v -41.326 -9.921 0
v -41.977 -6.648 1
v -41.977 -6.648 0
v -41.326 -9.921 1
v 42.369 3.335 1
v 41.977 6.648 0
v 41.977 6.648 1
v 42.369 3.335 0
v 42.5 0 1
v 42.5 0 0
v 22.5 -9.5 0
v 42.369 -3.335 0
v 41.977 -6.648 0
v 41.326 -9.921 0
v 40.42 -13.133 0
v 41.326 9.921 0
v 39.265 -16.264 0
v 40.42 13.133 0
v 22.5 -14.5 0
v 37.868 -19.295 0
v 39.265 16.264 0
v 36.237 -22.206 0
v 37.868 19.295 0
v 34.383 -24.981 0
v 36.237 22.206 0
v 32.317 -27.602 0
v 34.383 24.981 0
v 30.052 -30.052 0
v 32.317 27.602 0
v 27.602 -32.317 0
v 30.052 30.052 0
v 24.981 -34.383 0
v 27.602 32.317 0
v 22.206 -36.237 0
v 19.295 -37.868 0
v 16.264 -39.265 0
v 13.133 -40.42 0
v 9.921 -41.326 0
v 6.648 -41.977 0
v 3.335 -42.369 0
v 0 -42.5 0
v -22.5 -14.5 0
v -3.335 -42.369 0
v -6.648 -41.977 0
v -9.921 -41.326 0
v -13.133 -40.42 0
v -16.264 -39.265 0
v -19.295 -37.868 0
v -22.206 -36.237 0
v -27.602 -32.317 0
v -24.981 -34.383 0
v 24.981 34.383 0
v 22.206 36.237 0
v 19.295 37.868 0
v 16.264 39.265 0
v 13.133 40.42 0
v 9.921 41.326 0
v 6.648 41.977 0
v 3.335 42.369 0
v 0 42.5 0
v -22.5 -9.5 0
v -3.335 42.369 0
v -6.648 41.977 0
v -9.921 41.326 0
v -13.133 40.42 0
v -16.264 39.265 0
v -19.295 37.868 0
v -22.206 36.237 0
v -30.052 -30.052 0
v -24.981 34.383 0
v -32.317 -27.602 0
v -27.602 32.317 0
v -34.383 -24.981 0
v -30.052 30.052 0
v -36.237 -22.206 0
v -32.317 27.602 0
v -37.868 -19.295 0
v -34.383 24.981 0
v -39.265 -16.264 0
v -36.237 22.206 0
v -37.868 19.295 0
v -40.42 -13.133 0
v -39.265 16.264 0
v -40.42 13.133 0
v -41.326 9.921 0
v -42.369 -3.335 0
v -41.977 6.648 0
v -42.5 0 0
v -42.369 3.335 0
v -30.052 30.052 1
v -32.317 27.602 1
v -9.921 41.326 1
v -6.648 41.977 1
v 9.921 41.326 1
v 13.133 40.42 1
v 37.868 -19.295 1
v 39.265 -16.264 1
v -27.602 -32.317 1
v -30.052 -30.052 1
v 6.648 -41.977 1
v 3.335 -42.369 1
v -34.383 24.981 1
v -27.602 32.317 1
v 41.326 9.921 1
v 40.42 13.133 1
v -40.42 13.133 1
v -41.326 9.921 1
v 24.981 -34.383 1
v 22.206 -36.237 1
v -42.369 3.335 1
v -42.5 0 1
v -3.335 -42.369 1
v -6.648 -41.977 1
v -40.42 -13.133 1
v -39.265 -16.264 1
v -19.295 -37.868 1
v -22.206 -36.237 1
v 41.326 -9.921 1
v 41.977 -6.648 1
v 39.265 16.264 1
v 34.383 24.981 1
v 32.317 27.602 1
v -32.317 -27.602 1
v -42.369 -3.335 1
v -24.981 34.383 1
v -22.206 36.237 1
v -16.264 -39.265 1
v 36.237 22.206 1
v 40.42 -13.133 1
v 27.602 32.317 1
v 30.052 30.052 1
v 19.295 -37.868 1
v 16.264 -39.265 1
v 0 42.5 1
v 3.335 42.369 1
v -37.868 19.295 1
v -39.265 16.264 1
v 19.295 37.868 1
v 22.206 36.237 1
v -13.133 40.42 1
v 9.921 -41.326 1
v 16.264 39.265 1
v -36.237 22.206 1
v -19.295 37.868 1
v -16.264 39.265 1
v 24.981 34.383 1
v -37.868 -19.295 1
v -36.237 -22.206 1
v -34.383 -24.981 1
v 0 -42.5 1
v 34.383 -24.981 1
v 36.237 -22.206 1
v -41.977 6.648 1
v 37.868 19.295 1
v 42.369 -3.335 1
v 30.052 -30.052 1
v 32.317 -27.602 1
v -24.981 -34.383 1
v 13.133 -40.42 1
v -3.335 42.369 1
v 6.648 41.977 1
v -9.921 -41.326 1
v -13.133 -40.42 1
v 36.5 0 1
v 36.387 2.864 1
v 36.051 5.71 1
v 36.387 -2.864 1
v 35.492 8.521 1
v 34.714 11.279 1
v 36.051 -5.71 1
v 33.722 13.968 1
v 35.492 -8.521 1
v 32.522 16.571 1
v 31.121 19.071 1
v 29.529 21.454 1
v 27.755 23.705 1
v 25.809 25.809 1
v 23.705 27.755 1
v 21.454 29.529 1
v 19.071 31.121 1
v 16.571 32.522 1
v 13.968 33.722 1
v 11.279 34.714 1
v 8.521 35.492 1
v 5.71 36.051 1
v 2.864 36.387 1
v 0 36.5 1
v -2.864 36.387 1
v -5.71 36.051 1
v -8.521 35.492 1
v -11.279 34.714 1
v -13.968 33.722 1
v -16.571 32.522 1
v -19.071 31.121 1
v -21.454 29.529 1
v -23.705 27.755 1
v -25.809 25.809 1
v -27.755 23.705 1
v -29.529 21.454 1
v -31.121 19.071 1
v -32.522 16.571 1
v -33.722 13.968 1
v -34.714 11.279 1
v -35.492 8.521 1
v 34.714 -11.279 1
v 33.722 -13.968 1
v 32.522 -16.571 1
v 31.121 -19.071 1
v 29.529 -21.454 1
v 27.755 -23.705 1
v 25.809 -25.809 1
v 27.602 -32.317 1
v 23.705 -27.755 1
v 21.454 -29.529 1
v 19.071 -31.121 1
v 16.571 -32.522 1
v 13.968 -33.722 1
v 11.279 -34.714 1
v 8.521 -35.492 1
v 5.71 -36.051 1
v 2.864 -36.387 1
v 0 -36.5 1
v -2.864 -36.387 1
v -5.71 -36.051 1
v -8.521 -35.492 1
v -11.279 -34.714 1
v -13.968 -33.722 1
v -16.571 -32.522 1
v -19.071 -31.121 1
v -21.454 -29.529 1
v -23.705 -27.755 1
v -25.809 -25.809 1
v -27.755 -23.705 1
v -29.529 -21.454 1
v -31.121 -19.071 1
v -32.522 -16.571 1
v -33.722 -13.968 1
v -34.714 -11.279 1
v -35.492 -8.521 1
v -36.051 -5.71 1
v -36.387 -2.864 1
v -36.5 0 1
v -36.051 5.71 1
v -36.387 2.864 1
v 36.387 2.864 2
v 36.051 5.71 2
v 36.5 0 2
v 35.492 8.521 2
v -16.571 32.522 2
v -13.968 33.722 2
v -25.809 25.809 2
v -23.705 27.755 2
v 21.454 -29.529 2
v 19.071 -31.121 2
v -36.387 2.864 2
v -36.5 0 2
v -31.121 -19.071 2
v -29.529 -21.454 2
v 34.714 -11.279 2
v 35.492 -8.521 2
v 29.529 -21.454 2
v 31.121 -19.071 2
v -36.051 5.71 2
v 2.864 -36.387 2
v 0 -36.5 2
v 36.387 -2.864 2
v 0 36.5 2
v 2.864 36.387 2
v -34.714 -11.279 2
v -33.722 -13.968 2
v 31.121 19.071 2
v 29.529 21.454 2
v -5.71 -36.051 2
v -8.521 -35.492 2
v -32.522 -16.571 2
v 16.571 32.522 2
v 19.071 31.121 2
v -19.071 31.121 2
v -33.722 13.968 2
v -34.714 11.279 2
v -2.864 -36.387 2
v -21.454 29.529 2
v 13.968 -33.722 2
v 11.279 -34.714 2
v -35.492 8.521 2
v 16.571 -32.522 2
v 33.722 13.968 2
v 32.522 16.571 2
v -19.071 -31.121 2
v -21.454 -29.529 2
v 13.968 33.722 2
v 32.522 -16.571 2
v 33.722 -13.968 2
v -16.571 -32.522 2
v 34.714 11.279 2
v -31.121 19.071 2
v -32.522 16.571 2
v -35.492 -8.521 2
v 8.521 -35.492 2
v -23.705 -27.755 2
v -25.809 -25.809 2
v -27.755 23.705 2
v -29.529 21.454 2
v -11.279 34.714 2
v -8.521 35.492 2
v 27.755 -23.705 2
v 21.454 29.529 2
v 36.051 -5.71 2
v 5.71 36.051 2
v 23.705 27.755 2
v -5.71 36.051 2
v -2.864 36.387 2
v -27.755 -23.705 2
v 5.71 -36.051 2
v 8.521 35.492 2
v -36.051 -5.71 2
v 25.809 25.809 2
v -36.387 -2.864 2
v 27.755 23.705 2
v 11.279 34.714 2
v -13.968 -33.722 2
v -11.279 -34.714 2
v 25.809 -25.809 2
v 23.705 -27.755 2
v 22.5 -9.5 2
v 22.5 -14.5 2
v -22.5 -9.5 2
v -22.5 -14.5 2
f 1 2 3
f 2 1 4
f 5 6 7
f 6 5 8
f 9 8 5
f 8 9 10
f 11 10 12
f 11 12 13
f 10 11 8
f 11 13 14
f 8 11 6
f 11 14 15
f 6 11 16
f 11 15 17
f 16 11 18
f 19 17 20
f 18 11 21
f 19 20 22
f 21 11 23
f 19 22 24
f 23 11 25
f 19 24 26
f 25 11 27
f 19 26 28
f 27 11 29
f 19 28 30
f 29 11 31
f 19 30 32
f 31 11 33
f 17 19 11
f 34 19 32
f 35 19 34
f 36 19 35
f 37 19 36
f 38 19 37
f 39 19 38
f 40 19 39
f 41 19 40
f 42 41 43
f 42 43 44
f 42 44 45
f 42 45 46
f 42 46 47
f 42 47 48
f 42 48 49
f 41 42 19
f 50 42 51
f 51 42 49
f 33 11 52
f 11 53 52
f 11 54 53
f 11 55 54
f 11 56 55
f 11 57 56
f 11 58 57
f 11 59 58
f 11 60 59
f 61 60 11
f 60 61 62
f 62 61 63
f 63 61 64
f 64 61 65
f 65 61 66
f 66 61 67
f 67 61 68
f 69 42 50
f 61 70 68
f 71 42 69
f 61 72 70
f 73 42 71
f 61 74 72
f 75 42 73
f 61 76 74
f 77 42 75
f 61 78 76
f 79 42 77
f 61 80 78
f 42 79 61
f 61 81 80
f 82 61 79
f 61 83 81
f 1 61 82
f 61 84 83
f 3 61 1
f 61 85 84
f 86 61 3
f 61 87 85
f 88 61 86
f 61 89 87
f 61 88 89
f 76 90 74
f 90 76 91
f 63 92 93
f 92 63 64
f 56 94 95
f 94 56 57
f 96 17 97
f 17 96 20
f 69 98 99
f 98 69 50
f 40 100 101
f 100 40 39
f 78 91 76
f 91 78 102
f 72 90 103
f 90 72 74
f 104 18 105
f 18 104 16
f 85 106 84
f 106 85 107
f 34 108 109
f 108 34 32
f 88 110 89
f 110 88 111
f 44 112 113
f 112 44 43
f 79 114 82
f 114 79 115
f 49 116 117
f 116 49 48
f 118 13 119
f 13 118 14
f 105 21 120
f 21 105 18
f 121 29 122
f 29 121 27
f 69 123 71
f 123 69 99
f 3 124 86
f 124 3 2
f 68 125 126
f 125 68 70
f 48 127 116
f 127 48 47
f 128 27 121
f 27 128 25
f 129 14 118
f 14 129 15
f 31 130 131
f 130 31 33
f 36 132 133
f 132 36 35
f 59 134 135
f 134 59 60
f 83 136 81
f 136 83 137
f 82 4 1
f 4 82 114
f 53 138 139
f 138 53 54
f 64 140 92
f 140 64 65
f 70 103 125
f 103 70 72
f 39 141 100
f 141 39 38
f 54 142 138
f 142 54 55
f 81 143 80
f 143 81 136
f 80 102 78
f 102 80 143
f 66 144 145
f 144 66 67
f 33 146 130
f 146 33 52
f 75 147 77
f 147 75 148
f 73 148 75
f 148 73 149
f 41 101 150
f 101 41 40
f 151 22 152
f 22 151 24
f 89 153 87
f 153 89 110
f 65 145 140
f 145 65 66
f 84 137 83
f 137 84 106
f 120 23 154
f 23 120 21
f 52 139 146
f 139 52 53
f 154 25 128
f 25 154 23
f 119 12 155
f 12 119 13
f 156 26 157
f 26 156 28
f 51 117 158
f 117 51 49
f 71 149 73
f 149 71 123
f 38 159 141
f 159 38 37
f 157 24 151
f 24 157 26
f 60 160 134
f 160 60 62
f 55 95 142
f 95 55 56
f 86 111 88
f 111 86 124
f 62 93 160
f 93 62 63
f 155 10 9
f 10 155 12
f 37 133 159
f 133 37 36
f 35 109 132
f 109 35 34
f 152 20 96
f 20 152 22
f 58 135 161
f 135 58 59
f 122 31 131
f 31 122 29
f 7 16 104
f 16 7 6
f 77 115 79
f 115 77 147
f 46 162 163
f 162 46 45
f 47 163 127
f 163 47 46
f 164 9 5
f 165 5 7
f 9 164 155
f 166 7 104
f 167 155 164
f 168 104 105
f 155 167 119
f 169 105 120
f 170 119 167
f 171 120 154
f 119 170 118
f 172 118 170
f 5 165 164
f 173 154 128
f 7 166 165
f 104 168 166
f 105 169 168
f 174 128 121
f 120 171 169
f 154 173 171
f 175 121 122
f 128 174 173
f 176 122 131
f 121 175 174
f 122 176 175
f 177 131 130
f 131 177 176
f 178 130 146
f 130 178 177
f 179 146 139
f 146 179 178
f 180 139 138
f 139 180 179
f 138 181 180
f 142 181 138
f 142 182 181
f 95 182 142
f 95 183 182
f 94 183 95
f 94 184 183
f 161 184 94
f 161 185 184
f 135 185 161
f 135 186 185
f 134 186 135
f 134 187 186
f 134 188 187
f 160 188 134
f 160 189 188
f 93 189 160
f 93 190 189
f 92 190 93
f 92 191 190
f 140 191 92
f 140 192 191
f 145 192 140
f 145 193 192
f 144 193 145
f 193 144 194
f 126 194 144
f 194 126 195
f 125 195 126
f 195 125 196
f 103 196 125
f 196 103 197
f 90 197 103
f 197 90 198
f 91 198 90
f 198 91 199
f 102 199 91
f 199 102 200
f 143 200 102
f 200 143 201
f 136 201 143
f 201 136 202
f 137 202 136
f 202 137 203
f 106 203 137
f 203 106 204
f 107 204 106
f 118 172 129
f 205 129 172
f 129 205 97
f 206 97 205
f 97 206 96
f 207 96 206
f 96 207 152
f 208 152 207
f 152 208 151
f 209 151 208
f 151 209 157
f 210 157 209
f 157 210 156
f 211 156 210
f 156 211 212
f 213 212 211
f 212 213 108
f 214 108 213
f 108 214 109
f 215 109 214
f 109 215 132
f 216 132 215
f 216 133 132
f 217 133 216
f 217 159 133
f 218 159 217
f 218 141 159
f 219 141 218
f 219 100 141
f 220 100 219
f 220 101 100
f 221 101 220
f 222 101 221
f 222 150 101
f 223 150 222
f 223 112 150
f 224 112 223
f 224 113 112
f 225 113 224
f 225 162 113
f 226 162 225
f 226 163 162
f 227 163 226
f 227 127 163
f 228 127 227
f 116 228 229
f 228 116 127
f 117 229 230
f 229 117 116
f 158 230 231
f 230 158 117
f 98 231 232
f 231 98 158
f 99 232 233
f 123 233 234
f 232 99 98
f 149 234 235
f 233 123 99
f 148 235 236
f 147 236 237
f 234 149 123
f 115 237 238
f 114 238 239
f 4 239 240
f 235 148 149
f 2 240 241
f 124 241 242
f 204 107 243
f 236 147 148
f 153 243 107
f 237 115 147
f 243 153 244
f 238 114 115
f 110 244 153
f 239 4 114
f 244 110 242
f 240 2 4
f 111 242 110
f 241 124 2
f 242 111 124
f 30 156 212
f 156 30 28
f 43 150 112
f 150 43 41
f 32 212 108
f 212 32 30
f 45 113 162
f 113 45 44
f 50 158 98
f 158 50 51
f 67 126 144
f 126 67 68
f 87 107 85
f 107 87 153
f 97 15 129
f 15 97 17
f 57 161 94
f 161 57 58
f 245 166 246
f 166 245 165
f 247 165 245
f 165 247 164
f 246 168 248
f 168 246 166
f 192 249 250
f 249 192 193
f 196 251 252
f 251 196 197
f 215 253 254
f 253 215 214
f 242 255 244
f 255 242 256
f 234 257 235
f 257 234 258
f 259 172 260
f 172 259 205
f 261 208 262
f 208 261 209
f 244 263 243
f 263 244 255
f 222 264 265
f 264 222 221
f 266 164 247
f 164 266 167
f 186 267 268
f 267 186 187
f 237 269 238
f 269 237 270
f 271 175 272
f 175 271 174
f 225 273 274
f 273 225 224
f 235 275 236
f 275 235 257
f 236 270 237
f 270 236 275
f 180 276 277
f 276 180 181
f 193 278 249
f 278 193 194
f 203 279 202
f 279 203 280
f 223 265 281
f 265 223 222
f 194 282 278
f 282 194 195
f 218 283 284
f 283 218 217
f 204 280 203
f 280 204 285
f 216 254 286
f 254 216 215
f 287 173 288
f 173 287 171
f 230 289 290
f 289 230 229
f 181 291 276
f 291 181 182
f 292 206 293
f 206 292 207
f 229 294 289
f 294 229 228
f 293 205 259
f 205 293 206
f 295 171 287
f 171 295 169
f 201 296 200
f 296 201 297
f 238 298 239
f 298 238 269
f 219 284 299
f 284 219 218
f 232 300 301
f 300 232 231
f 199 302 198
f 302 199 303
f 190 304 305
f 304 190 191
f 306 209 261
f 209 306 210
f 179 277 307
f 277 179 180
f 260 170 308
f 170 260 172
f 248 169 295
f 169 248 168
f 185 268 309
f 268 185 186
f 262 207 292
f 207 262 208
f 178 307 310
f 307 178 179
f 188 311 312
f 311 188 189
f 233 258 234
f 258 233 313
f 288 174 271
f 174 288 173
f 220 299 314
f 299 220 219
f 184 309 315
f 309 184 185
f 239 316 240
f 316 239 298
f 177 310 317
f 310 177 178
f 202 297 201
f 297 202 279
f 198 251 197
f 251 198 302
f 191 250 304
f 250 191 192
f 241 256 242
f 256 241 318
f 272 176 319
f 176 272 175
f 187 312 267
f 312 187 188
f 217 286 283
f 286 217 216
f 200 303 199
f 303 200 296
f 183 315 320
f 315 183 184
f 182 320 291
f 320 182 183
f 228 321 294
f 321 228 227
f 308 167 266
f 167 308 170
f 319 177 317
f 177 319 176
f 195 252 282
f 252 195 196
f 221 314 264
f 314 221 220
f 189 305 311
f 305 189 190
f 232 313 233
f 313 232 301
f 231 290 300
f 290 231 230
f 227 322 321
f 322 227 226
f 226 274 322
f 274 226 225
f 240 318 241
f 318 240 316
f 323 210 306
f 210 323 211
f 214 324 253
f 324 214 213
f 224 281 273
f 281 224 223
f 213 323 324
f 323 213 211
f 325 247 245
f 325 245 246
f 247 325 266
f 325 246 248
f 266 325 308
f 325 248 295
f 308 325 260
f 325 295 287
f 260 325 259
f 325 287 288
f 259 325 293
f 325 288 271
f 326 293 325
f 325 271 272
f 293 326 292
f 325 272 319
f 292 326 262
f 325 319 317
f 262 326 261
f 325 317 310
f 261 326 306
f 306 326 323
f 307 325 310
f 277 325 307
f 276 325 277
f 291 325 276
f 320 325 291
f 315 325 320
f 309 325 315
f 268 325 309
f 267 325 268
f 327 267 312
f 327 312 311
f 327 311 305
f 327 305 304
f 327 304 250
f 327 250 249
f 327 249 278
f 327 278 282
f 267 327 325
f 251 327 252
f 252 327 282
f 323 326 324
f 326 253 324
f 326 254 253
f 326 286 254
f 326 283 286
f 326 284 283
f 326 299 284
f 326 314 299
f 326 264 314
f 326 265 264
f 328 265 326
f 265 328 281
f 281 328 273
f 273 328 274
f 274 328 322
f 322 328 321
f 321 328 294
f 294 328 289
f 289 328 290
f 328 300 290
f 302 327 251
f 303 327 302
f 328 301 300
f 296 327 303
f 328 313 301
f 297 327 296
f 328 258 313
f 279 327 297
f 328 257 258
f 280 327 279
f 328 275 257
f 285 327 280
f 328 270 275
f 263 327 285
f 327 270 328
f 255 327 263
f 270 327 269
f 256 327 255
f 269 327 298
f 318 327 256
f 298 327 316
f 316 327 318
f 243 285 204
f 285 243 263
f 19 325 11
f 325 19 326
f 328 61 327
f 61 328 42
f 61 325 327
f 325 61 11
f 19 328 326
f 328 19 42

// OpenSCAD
difference() {
   union() {
      cylinder($fn=80,d=85,h=1);
      cylinder($fn=80,d=73,h=2);
   }
   translate([0,-12,0]) cube([45,5,10],center=true);
}
